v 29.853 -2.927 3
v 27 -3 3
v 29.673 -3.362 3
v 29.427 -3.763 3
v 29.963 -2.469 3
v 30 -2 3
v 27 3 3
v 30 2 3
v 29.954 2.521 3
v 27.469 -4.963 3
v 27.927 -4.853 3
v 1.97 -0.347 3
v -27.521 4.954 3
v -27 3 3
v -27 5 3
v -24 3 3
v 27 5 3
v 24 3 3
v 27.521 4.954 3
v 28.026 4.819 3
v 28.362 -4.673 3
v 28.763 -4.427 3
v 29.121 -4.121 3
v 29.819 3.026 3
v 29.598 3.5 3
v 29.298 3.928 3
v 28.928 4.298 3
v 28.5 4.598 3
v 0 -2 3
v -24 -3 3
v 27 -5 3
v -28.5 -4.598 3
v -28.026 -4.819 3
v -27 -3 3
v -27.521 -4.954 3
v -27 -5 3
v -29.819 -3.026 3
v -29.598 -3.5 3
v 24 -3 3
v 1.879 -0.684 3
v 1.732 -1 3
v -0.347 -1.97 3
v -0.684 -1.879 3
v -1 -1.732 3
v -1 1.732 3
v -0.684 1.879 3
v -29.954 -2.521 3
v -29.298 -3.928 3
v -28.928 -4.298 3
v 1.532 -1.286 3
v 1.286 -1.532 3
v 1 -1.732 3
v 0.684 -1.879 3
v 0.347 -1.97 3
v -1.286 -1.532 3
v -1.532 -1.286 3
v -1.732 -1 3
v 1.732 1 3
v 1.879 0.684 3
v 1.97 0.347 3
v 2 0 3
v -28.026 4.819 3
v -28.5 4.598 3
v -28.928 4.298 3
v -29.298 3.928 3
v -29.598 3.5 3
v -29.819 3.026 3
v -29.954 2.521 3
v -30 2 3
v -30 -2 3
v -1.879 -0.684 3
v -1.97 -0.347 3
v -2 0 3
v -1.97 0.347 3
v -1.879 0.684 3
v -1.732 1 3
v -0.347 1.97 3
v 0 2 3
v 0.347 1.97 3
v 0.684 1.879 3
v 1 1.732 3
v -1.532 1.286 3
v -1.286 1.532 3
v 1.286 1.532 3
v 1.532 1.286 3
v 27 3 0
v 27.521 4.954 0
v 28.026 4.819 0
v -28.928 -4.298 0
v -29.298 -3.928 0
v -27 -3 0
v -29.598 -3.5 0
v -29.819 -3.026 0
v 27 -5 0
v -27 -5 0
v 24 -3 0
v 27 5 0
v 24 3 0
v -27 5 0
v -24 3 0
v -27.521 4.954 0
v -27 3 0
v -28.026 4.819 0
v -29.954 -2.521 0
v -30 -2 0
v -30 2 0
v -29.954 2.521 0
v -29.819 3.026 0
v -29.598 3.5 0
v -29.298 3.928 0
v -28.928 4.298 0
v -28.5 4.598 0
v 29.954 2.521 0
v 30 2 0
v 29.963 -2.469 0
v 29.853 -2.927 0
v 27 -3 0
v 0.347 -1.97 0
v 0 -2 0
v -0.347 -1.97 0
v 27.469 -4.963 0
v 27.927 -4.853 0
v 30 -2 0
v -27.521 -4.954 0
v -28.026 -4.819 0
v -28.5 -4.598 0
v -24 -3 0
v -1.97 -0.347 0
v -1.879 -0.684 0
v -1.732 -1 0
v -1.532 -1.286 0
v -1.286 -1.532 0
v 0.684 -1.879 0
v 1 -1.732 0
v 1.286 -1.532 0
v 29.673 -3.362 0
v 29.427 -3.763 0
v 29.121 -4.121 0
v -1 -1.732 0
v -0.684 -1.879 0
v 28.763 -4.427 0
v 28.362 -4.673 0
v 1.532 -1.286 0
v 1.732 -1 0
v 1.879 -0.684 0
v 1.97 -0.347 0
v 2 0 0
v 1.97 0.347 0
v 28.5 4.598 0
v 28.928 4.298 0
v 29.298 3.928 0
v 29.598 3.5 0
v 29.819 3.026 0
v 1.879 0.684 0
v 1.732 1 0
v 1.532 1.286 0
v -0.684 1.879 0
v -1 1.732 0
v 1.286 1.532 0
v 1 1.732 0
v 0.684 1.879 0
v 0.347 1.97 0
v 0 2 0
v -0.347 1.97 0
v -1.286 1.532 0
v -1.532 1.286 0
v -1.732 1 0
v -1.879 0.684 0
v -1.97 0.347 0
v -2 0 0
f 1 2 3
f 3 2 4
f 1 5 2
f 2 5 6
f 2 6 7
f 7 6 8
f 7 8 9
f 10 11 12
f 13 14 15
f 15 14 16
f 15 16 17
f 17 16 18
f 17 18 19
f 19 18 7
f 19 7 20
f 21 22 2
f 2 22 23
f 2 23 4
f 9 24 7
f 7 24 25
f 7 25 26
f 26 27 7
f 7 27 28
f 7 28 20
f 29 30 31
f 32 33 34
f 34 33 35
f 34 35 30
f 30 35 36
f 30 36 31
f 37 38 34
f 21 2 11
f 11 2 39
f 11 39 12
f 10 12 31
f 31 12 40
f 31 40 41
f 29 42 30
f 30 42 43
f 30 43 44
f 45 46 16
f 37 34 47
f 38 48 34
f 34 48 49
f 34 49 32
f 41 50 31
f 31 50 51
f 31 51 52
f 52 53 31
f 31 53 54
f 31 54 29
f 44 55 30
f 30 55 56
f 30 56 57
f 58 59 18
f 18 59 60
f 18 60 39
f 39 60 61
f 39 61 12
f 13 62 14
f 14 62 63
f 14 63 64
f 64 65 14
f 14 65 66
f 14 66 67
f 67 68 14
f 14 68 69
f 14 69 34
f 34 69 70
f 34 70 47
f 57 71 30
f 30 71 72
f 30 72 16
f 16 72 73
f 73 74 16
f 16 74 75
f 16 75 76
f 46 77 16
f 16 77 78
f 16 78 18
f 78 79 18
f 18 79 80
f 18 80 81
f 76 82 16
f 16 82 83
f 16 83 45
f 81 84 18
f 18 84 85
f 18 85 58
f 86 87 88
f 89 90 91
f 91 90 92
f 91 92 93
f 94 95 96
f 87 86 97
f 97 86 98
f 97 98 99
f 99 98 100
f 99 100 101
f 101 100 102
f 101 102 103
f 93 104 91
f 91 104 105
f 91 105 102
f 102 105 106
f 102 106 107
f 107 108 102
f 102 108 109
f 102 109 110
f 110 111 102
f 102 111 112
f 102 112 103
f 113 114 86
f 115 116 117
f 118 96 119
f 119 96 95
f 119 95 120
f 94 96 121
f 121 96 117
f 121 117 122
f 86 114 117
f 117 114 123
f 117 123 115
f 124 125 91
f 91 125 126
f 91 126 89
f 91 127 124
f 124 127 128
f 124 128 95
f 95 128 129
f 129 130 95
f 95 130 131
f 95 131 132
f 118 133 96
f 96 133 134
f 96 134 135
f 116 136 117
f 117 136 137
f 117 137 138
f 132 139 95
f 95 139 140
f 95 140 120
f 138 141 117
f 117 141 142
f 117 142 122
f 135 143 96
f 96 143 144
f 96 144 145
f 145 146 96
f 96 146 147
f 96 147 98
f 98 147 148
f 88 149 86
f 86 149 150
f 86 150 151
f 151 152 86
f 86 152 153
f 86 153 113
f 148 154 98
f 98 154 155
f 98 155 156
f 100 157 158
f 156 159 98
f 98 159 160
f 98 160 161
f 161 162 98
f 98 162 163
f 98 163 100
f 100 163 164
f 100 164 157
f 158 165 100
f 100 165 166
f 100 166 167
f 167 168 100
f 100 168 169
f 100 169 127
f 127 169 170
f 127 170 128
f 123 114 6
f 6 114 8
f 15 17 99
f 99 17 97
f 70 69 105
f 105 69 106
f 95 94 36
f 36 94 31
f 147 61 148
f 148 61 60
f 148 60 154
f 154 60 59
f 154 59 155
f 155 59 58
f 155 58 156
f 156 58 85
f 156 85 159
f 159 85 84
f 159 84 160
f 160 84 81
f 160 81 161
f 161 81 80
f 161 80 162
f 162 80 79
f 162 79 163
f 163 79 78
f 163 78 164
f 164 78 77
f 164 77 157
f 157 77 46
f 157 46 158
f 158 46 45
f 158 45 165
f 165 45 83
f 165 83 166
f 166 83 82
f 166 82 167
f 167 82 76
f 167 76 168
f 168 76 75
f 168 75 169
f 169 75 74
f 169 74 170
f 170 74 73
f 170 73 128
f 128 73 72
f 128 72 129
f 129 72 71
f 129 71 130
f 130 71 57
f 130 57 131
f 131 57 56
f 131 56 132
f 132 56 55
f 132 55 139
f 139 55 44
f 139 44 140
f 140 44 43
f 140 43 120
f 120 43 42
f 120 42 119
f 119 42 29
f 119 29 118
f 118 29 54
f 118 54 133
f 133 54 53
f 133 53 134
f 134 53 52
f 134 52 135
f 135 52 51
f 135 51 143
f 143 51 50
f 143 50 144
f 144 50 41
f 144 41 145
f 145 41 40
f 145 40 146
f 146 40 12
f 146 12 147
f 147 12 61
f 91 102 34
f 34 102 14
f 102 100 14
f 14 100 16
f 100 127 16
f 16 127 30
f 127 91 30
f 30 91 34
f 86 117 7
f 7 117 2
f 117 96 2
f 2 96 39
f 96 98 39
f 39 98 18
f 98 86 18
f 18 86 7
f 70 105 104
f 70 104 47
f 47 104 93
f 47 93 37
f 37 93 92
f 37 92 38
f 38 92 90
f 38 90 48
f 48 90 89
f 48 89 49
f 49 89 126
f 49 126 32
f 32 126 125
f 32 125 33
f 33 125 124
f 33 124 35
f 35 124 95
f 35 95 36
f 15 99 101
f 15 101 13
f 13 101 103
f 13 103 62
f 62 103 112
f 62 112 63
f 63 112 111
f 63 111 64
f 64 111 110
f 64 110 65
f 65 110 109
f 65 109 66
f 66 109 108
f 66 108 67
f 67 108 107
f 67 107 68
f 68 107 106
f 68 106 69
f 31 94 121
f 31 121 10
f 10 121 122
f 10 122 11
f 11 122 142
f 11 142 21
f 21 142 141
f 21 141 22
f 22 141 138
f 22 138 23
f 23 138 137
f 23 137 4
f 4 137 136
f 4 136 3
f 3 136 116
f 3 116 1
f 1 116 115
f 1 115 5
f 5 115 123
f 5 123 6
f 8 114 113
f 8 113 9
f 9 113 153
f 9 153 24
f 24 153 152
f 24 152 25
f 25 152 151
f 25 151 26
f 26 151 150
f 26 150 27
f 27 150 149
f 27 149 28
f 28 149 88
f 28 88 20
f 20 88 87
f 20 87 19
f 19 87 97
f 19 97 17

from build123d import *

# Parameters (mm, degrees)
SKETCH1_W           = 60
SKETCH1_H           = 10
BOSS_EXTRUDE1_DEPTH = 3
SKETCH2_R           = 2
CUT_EXTRUDE1_DEPTH  = 3
SKETCH3_W           = 3
SKETCH3_H           = 6
CUT_EXTRUDE2_DEPTH  = 3
FILLET1_R           = 3


with BuildPart() as part:
    # Sketch1 → Boss-Extrude1 (new body)
    with BuildSketch(Plane.XY):
        Rectangle(SKETCH1_W, SKETCH1_H)
    extrude(amount=BOSS_EXTRUDE1_DEPTH)

    # Sketch2 → Cut-Extrude1 (cut)
    with BuildSketch(Plane.XY.offset(3)):
        Circle(SKETCH2_R)
    extrude(amount=-CUT_EXTRUDE1_DEPTH, mode=Mode.SUBTRACT)

    # Sketch3 → Cut-Extrude2 (cut)
    with BuildSketch(Plane.XY.offset(3)):
        with Locations((-25.5, 0)):
            Rectangle(SKETCH3_W, SKETCH3_H)
    cut_extrude2 = extrude(amount=-CUT_EXTRUDE2_DEPTH, mode=Mode.SUBTRACT)

    # Mirror1: Cut-Extrude2 across plane
    add(cut_extrude2.mirror(Plane(origin=(0, 0, 0), x_dir=(0, 0, 1), z_dir=(1, 0, 0))), mode=Mode.SUBTRACT)

    # Fillet1
    fillet1_edges = [part.edges().sort_by_distance(p)[0] for p in [
        (30, -5, 1.5),
        (-30, -5, 1.5),
        (-30, 5, 1.5),
        (30, 5, 1.5),
    ]]
    fillet(fillet1_edges, radius=FILLET1_R)


solid = part.part
